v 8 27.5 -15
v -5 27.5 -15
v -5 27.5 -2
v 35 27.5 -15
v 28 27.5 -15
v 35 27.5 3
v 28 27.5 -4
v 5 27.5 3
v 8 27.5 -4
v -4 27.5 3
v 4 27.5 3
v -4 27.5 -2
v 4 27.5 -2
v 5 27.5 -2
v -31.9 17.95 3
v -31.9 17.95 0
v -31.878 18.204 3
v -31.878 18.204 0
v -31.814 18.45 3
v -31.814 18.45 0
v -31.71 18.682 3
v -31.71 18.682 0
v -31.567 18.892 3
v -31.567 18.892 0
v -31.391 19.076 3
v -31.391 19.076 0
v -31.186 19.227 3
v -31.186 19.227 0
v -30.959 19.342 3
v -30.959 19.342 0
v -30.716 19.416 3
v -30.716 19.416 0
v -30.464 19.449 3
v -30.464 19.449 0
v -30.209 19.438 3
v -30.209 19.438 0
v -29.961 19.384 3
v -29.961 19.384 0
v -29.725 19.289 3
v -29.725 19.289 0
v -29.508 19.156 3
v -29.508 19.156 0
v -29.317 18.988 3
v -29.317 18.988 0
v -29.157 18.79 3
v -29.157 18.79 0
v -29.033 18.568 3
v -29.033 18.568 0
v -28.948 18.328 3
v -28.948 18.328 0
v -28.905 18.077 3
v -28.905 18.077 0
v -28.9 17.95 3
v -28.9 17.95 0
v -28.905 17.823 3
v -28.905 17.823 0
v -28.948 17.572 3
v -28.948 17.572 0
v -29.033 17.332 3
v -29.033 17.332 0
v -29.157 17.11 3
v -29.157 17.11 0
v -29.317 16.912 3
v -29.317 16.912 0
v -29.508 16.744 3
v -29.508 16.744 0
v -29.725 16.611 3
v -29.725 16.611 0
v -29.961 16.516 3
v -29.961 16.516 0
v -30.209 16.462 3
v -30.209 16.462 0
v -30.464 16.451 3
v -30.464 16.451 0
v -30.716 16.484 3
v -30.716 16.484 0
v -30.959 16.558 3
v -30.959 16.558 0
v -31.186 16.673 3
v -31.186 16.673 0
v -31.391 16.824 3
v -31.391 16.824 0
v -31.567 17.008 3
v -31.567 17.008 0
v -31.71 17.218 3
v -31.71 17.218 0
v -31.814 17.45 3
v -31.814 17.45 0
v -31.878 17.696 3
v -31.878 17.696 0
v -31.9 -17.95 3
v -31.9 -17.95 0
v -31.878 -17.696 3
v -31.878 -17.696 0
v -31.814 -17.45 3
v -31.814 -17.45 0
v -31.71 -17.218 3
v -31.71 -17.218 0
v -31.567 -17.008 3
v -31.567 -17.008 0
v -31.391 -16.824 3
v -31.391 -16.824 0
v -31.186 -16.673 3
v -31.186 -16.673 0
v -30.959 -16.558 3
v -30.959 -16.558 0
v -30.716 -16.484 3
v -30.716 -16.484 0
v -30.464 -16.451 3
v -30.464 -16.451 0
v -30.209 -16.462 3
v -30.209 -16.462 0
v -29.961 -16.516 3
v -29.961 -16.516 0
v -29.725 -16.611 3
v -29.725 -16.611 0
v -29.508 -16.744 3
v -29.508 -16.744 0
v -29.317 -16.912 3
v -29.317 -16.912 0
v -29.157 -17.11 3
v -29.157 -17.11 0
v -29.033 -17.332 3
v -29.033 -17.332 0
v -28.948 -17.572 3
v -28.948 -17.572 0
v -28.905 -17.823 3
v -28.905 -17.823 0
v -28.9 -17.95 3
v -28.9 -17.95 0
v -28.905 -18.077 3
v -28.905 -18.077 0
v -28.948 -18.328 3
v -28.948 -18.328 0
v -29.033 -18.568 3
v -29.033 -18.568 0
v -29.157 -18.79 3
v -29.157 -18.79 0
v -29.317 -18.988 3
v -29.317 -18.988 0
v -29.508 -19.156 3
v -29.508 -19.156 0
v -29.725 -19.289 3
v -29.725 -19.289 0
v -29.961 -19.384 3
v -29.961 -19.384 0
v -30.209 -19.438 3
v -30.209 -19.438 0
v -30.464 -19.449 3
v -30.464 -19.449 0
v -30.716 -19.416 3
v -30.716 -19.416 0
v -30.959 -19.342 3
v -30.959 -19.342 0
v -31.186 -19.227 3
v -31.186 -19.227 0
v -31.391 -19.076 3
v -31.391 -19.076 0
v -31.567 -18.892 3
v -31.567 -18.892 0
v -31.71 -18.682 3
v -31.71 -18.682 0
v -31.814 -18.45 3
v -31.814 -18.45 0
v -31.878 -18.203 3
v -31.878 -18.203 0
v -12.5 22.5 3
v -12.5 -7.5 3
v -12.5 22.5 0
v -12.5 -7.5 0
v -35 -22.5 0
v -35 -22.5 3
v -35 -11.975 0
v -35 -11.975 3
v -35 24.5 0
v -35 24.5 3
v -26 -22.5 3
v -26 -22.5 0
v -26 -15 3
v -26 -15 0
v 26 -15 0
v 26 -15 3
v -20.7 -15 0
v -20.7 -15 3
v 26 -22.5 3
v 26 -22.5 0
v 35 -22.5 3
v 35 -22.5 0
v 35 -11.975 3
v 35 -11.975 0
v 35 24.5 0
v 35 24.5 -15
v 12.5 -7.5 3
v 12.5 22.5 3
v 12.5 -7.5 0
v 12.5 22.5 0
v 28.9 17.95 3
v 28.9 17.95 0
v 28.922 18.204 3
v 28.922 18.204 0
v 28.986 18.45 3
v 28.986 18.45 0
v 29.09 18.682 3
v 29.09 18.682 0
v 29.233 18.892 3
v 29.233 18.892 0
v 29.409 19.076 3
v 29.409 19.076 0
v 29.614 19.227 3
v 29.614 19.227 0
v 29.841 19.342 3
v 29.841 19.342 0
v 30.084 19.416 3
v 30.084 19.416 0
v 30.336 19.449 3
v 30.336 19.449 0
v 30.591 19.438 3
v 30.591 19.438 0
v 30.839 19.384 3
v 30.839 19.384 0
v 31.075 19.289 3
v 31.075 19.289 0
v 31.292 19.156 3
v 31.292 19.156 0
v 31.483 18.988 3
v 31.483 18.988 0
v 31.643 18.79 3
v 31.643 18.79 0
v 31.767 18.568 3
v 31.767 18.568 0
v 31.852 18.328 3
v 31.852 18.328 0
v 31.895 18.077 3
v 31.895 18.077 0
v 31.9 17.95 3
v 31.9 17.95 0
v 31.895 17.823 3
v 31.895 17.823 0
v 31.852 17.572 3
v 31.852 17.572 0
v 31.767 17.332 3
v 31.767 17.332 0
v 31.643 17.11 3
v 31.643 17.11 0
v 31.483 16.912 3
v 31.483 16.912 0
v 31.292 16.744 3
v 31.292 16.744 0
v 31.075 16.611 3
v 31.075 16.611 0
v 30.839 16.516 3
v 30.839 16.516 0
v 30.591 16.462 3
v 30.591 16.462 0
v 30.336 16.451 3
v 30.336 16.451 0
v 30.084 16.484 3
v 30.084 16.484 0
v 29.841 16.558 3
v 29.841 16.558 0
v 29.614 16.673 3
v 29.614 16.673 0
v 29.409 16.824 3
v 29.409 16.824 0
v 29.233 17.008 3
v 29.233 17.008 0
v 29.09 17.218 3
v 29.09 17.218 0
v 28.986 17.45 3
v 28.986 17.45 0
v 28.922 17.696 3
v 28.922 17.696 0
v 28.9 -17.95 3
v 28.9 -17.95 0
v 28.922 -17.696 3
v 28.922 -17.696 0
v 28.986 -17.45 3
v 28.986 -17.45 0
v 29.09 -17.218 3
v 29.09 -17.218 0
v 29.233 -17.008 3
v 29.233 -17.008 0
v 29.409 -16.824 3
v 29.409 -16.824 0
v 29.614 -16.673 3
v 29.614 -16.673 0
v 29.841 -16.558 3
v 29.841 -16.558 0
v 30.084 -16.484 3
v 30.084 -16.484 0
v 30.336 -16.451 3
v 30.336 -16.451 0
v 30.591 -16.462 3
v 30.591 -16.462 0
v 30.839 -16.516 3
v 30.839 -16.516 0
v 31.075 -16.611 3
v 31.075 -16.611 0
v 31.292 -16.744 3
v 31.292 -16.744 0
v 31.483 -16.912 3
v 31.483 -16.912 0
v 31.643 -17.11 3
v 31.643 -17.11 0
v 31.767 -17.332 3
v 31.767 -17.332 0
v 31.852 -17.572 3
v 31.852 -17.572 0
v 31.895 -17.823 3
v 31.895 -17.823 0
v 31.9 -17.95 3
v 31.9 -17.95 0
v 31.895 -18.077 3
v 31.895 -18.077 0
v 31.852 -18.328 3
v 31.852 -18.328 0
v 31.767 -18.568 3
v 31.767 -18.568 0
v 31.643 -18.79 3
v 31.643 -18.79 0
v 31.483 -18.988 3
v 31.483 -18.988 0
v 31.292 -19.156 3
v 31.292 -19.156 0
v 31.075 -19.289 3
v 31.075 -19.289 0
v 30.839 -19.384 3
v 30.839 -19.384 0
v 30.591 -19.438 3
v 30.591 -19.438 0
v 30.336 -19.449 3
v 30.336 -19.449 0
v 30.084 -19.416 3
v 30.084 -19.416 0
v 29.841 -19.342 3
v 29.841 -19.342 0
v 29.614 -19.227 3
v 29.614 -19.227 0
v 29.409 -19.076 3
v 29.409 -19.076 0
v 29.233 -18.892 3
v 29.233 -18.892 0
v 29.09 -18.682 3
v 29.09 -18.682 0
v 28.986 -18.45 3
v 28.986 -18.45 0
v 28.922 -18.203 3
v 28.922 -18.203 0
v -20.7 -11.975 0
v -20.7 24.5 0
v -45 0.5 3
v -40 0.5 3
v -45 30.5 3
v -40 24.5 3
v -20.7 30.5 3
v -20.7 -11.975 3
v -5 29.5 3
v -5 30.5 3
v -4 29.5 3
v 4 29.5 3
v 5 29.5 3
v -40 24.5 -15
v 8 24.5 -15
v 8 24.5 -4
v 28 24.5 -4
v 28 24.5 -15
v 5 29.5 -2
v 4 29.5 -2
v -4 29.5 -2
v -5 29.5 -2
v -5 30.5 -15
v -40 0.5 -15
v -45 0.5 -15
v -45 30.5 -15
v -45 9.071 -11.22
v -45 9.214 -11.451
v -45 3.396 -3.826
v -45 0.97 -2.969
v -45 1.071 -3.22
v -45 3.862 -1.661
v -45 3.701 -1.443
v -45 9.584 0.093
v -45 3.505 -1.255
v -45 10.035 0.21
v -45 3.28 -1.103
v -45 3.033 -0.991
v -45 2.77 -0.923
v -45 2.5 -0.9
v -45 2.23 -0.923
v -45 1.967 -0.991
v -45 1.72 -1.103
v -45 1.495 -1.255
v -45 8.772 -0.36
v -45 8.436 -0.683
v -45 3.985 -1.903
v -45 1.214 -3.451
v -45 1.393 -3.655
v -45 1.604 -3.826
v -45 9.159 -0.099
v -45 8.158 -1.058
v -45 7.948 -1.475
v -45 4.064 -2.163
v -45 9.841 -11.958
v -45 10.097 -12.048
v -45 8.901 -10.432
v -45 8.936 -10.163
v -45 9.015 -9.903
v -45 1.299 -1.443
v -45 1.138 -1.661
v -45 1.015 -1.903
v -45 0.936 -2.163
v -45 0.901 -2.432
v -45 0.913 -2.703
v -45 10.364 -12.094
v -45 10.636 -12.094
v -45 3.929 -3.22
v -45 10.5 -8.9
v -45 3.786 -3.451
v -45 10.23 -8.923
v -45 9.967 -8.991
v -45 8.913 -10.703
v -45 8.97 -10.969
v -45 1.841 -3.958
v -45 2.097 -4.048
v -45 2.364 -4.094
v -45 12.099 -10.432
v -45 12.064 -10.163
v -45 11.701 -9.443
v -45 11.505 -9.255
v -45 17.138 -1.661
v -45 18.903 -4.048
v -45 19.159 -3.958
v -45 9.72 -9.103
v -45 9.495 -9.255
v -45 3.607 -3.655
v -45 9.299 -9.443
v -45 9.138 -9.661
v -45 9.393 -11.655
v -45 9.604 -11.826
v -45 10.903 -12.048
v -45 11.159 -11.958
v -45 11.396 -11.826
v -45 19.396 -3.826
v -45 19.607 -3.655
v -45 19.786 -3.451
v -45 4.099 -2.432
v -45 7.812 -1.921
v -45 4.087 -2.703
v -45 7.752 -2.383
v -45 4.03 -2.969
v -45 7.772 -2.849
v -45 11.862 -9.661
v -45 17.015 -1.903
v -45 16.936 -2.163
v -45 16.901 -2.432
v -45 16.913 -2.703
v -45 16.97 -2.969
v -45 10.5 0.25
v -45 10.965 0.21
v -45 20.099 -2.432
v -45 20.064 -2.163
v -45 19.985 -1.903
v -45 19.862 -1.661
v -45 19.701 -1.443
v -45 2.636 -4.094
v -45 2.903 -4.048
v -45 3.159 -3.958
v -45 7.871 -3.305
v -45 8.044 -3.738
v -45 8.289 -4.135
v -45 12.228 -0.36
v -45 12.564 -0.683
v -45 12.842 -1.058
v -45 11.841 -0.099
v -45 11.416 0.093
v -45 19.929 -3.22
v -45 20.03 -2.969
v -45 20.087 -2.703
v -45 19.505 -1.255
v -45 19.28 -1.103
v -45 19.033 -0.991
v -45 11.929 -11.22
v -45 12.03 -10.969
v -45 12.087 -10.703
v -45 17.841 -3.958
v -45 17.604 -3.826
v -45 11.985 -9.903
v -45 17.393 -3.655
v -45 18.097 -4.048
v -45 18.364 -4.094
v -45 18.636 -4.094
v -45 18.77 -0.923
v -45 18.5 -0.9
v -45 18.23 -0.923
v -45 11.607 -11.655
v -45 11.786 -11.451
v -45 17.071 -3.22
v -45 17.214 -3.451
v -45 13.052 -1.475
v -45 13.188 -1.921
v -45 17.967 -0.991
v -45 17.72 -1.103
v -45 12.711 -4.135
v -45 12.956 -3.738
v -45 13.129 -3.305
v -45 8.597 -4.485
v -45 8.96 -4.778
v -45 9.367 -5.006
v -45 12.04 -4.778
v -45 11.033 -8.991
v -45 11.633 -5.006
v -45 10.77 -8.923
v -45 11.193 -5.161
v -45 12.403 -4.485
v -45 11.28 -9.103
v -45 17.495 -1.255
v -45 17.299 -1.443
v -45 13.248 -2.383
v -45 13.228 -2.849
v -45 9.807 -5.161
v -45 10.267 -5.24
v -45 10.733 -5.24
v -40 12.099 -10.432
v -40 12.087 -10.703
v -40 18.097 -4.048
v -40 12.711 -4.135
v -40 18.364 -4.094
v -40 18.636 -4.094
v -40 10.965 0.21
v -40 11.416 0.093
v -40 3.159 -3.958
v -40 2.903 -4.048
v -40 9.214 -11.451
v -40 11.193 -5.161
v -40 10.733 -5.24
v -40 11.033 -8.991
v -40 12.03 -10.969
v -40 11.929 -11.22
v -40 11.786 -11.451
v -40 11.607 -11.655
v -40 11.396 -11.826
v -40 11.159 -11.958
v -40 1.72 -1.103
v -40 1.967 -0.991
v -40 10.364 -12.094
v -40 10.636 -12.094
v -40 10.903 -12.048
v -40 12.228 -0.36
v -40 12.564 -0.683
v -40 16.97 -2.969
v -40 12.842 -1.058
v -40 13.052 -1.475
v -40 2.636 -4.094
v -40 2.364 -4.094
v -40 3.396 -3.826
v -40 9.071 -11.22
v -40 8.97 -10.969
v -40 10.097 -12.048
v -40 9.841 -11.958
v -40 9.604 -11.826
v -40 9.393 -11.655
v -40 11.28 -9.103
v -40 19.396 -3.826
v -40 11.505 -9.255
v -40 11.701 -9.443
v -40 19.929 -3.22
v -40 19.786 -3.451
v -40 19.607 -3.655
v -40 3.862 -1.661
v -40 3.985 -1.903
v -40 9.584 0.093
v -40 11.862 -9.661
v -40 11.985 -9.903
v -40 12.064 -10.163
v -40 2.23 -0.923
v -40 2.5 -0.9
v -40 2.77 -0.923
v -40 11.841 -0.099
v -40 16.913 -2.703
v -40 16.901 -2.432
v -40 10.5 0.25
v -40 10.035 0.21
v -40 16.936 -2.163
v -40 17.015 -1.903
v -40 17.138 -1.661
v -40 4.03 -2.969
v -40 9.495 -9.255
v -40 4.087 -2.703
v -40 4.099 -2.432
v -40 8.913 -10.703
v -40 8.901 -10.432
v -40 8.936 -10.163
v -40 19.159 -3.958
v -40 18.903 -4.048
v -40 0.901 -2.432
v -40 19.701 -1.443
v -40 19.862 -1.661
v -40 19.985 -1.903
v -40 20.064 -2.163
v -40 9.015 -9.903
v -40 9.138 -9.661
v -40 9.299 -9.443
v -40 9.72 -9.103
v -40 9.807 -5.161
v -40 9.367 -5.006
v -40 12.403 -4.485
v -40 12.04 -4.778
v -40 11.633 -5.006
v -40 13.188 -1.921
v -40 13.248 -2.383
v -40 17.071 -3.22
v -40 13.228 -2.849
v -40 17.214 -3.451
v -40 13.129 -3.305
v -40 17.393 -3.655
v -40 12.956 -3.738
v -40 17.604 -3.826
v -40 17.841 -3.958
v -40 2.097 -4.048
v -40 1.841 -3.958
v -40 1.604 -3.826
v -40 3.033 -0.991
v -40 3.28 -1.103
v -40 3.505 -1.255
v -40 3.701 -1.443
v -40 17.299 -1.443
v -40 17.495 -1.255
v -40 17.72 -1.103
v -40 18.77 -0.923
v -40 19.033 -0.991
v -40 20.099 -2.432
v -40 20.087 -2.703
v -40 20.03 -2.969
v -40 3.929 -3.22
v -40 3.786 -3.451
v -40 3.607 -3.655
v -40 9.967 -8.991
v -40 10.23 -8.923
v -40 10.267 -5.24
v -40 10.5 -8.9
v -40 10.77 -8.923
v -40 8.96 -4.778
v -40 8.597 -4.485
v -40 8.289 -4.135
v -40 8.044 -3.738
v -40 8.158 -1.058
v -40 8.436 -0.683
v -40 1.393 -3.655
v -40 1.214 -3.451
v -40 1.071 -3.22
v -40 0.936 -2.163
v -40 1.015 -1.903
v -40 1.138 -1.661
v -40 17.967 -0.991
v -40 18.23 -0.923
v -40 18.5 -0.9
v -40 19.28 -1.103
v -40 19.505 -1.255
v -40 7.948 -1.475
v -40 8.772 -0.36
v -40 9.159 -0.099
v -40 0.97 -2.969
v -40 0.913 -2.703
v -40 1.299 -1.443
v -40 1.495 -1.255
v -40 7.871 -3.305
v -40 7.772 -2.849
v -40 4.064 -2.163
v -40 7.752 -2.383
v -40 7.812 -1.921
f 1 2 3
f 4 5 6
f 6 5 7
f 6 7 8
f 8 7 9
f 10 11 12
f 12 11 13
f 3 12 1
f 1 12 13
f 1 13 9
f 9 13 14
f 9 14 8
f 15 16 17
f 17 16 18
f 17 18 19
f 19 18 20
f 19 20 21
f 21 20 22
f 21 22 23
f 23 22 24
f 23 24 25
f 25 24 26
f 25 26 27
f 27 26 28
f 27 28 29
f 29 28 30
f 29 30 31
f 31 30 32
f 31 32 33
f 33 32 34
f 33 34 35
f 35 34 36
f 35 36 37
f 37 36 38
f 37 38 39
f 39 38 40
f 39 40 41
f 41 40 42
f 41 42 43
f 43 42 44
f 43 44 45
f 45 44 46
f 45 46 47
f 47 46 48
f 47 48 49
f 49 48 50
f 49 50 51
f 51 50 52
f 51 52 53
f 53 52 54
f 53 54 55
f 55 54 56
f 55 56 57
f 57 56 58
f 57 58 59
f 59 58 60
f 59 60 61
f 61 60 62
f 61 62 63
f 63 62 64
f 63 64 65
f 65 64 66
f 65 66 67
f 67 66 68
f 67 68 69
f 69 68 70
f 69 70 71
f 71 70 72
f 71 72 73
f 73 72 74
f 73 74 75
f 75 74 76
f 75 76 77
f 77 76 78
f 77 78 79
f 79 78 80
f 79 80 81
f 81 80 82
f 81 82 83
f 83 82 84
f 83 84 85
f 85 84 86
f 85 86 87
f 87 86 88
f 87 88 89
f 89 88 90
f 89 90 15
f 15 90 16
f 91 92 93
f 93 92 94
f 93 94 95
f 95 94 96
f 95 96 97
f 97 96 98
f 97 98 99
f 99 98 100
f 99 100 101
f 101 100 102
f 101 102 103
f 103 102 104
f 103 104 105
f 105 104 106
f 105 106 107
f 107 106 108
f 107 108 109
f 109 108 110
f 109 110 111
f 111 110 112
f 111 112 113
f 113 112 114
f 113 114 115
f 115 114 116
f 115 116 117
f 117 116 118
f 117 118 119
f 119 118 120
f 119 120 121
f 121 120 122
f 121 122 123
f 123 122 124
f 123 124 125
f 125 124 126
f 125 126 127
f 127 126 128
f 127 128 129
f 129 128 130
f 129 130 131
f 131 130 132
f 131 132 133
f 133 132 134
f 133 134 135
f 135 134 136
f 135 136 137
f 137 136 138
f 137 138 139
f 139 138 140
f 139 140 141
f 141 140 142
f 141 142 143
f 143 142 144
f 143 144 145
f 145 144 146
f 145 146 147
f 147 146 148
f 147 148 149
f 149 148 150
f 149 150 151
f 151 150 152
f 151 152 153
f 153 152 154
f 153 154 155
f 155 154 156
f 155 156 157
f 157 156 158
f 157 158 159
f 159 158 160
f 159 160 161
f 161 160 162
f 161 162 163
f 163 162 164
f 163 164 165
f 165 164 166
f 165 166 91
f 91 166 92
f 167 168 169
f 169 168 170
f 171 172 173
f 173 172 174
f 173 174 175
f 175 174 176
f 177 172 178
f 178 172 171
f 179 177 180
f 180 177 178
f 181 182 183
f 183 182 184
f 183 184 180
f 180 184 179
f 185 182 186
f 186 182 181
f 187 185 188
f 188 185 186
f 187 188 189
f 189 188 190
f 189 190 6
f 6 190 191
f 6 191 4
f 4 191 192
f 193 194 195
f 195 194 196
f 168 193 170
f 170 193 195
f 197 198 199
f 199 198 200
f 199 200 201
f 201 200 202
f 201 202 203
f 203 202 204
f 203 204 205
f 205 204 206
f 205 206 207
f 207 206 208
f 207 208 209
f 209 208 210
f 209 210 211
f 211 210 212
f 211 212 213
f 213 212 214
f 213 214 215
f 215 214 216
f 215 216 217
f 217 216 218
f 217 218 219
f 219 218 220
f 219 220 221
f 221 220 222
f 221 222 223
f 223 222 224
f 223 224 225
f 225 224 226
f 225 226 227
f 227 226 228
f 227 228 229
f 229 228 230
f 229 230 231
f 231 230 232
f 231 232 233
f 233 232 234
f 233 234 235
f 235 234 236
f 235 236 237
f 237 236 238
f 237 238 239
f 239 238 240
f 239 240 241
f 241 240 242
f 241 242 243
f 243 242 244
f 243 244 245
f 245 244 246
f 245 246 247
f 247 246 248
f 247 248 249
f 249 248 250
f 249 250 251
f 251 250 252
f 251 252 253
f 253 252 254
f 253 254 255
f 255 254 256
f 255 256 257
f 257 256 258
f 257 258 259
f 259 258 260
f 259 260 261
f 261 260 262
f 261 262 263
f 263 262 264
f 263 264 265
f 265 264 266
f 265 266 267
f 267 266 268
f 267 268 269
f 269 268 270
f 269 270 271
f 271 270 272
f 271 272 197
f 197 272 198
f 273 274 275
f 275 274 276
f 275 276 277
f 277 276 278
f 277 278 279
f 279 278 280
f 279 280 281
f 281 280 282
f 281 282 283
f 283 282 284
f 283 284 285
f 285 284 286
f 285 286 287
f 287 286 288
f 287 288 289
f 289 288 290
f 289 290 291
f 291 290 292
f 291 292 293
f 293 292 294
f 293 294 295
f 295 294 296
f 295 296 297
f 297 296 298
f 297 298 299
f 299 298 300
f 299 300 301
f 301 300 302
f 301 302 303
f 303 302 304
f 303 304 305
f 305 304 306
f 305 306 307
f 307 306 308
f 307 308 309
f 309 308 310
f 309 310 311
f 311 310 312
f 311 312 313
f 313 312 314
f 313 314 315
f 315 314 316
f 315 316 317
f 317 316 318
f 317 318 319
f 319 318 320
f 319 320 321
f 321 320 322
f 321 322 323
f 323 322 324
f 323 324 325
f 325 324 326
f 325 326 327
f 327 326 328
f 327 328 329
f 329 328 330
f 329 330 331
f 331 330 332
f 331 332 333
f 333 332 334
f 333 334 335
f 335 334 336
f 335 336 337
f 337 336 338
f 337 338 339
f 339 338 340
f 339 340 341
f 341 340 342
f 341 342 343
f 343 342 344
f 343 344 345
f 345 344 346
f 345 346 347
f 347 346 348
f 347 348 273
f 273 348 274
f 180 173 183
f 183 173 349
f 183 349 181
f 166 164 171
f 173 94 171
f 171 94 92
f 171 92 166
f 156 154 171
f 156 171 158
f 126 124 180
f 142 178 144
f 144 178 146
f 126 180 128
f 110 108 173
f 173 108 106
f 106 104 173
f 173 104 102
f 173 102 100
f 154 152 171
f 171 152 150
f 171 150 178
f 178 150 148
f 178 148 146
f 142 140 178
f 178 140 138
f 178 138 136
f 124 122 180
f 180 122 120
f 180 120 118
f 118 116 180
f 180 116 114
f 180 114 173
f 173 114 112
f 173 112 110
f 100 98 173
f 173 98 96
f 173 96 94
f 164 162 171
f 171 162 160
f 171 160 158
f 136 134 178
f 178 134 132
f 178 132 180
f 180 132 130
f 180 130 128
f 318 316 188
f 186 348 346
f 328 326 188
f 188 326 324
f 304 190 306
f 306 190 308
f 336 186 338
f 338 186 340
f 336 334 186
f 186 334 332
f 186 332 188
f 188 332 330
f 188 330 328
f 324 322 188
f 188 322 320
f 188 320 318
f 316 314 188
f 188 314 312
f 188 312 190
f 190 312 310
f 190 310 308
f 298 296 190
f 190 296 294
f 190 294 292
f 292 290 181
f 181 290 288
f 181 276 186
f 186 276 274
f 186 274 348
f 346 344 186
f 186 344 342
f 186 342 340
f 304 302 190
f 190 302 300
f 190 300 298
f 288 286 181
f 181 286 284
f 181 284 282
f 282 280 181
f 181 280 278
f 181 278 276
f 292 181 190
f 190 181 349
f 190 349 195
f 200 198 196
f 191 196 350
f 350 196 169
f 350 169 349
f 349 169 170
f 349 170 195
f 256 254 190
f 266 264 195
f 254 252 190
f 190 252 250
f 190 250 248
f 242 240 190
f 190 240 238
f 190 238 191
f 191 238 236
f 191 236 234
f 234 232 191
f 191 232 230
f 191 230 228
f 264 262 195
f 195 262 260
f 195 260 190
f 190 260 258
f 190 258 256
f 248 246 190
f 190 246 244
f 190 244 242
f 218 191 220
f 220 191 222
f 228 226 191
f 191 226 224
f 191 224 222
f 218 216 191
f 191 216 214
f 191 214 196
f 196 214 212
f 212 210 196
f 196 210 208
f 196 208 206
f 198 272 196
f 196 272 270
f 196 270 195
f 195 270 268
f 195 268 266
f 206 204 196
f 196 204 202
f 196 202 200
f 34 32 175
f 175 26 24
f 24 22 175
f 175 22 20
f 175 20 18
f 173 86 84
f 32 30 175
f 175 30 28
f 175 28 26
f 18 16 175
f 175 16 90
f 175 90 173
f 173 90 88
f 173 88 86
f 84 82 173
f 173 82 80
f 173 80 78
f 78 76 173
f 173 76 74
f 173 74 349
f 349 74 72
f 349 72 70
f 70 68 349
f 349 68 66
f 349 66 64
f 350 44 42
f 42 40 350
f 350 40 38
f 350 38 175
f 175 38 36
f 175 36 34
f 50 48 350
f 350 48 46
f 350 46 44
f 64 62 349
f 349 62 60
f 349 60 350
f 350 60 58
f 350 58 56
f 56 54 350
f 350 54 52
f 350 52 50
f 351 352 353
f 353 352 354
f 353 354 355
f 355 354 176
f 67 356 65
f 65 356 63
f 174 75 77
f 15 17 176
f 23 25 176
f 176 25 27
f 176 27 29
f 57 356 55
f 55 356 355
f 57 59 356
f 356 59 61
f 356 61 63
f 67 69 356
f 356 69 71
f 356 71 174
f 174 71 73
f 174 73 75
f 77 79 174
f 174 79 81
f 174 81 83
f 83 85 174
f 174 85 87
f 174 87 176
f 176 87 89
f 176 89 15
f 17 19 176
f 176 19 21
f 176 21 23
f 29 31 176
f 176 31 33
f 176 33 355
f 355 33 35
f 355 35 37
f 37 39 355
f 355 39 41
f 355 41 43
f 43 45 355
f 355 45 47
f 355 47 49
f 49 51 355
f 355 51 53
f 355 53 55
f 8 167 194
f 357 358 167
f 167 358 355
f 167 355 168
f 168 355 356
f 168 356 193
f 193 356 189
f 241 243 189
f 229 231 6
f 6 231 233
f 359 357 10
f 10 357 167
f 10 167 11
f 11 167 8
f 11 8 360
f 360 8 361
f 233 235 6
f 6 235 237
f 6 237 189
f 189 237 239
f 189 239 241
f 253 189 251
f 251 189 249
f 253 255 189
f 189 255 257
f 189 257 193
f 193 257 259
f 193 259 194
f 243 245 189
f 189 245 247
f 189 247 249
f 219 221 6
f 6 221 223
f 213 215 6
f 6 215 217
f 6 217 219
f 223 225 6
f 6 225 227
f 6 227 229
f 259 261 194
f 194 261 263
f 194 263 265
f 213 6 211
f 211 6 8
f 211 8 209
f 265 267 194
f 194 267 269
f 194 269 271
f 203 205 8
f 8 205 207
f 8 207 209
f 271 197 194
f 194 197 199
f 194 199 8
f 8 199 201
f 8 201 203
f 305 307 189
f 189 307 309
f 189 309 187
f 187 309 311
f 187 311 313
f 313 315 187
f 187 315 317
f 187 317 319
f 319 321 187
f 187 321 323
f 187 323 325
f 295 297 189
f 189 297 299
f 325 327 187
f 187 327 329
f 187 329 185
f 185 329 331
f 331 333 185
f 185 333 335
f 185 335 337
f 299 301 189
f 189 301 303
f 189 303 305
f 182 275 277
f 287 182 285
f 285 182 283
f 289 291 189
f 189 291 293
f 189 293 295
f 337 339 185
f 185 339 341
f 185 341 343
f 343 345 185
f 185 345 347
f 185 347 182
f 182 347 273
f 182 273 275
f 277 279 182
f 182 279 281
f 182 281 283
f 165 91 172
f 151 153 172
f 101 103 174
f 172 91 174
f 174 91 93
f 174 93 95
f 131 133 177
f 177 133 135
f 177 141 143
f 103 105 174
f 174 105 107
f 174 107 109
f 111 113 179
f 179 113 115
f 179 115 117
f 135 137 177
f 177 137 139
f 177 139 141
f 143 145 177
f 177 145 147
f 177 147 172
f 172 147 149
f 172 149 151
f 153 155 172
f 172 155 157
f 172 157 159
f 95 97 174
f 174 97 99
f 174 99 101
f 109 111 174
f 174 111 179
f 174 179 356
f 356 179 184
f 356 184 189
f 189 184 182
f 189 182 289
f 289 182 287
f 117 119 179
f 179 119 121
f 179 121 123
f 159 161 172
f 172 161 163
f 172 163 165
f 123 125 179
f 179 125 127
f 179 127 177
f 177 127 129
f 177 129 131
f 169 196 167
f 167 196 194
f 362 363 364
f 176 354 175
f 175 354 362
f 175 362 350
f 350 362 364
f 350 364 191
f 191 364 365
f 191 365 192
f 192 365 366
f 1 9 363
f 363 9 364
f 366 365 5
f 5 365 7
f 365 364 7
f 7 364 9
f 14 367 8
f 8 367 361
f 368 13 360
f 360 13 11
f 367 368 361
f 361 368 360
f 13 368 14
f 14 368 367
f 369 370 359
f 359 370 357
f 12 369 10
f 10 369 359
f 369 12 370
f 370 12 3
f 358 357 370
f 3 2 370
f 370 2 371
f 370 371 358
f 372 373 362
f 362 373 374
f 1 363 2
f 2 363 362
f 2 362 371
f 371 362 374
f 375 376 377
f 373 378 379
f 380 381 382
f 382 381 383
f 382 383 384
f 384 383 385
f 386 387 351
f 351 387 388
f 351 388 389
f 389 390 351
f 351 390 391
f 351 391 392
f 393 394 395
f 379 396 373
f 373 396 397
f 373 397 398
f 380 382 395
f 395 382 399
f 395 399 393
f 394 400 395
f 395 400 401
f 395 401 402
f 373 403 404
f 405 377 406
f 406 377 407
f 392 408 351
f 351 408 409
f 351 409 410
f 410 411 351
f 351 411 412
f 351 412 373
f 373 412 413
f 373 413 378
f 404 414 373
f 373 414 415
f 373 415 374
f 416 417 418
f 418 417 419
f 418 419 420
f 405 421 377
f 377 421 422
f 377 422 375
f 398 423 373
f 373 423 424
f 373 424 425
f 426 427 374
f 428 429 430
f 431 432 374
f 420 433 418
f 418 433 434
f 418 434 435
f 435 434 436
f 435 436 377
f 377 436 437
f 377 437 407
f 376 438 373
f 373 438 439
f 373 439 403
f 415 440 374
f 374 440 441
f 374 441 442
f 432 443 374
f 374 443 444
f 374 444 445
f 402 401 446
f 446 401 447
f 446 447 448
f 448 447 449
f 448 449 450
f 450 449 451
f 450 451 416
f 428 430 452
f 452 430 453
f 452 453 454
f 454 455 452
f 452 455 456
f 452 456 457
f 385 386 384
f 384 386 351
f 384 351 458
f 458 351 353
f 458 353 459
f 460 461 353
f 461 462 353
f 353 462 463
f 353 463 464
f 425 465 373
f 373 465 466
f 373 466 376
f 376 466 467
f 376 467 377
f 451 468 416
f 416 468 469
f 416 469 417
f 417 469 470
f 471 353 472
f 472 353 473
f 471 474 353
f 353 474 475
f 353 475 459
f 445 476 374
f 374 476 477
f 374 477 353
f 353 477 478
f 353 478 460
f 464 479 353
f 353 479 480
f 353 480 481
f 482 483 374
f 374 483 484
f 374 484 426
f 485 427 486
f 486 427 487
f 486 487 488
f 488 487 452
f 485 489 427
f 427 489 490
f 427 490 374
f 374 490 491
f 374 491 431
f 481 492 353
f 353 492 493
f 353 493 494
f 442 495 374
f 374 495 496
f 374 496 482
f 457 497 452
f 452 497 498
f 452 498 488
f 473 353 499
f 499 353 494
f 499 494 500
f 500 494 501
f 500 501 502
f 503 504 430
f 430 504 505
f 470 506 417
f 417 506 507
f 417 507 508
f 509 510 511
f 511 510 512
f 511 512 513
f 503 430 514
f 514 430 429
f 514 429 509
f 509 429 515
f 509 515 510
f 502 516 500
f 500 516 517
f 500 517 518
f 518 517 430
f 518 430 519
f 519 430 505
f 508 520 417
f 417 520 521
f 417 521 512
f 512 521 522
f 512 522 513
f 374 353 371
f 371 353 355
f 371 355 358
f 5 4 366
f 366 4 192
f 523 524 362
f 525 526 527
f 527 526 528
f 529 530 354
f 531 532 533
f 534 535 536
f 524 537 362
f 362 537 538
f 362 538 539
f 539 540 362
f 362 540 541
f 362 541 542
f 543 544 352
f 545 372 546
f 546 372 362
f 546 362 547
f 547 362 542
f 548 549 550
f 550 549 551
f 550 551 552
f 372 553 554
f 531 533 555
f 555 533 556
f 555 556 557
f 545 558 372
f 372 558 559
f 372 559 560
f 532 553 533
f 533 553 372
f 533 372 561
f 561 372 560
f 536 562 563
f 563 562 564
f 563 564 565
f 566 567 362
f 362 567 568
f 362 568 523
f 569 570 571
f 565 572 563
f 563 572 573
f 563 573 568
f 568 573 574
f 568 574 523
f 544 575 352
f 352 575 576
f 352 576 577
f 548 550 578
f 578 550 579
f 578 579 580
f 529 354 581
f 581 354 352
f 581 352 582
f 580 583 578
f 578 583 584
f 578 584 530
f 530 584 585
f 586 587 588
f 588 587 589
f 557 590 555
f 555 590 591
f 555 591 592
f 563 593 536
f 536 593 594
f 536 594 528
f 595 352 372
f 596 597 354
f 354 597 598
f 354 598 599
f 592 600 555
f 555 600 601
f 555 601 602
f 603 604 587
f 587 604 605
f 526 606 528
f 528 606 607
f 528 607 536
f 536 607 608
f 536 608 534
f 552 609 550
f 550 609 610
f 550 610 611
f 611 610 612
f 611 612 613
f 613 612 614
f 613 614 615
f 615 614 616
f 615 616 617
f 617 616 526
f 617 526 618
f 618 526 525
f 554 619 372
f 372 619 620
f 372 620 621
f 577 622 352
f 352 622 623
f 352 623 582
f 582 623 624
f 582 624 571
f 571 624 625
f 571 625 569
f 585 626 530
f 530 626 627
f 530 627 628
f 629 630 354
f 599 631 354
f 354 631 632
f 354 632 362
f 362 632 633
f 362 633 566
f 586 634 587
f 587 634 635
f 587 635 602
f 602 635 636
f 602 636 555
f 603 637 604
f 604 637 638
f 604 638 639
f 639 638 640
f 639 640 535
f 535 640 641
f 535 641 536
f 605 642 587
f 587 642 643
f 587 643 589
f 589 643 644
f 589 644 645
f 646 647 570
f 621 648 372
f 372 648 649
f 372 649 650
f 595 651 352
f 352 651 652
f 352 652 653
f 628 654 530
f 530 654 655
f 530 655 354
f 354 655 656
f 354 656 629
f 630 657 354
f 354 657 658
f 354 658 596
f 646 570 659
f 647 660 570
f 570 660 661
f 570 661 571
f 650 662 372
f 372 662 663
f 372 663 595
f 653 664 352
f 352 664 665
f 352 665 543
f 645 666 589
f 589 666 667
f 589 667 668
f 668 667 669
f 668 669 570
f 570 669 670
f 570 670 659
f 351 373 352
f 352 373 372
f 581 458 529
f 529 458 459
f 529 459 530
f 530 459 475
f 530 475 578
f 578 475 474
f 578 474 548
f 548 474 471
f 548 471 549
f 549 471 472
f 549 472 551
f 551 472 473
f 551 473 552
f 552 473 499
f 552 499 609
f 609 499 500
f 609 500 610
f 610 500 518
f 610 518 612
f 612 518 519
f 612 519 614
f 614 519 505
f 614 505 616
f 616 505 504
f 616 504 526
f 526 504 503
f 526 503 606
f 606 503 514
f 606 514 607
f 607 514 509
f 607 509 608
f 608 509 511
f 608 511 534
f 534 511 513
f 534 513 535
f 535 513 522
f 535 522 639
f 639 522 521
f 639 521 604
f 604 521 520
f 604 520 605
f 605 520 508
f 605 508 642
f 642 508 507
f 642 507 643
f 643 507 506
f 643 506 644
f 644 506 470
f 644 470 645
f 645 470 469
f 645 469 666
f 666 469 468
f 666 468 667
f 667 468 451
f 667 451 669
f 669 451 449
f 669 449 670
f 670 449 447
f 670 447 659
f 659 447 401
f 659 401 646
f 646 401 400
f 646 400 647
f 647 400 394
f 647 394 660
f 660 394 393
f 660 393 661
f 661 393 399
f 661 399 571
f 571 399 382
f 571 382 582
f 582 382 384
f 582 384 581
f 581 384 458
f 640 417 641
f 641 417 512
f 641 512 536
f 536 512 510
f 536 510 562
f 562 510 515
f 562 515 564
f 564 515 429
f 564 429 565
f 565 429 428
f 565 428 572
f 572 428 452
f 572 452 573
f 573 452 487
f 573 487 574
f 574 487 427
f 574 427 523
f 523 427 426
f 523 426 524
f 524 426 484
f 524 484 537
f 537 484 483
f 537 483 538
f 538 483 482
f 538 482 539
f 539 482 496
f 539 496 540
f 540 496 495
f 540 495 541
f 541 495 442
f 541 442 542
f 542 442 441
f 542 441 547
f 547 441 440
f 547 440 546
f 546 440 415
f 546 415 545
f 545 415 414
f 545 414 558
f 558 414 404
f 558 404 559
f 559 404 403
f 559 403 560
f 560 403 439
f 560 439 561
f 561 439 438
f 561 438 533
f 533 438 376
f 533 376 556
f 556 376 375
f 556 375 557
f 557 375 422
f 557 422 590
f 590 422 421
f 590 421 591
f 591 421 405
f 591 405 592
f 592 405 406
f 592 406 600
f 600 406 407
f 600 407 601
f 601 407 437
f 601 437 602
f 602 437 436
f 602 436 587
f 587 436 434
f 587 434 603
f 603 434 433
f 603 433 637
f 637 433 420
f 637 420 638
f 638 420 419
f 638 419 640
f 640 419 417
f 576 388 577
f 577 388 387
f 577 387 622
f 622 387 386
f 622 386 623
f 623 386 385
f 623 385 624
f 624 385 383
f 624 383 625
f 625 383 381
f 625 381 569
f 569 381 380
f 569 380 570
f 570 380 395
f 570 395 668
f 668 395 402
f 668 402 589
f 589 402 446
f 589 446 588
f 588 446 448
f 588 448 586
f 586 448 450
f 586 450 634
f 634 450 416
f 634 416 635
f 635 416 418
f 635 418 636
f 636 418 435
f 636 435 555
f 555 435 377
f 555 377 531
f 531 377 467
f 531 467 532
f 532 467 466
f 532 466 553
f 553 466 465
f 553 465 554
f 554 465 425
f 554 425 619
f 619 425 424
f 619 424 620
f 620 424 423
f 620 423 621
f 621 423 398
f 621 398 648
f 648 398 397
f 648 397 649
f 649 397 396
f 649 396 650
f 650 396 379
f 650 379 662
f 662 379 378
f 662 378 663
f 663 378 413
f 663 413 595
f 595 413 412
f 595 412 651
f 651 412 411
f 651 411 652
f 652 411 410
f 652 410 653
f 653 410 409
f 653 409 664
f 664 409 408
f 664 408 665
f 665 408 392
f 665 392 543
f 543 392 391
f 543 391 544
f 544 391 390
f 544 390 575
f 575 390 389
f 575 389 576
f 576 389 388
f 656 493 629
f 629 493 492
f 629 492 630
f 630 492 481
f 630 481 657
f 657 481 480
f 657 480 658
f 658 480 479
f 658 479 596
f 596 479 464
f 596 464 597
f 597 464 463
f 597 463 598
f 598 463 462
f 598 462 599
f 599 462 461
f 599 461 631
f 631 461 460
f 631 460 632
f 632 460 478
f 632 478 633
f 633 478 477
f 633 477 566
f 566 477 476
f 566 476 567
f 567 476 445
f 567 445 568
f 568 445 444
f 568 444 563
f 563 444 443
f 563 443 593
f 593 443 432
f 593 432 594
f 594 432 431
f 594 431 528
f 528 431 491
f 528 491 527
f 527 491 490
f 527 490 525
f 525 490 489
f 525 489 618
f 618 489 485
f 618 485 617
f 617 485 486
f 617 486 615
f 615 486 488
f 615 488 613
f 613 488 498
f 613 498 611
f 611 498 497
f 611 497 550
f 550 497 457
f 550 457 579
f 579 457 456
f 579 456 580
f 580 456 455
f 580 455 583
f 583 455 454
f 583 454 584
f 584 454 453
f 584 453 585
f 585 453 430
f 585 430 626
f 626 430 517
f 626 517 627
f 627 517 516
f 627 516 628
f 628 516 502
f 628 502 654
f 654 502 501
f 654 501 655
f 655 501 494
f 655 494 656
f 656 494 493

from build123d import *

# Parameters (mm, degrees)
SKETCH_1_R          = 1.5
EXTRUDE_1_DEPTH     = 3
SKETCH_2_W          = 70
SKETCH_2_H          = 22
EXTRUDE_2_DEPTH     = 3
SKETCH_3_W          = 20
SKETCH_3_H          = 21.549001307
CUT_EXTRUDE_1_DEPTH = 3
SKETCH_4_W          = 1
SKETCH_4_H          = 2
EXTRUDE_3_DEPTH     = 5
SKETCH_5_W          = 40
SKETCH_5_H          = 25
EXTRUDE_4_DEPTH     = 3
SKETCH_6_W          = 79.808748454
SKETCH_6_H          = 4
CUT_EXTRUDE_2_DEPTH = 5
SKETCH_7_W          = 5
SKETCH_7_H          = 25
EXTRUDE_5_DEPTH     = 30
SKETCH_8_R          = 2.75
SKETCH_8_R_2        = 1.6
CUT_EXTRUDE_3_DEPTH = 5
SKETCH_9_W          = 5
SKETCH_9_H          = 25
EXTRUDE_6_DEPTH     = 3
SKETCH_10_W         = 7
SKETCH_10_H         = 39.176748617
CUT_EXTRUDE_4_DEPTH = 53.490475326


with BuildPart() as part:
    # 草图1 → 凸台-拉伸1 (new body)
    # profile 1 of 2: a face of its own
    with BuildSketch(Plane.XY):
        Polygon((26, -22.5), (35, -22.5), (35, 22.5), (12.5, 22.5), (12.5, -7.5), (-12.5, -7.5), (-12.5, 22.5), (-35, 22.5), (-35, -22.5), (-26, -22.5), (-26, -15), (26, -15), align=None)
        with Locations((-30.4, -17.95)):
            Circle(SKETCH_1_R, mode=Mode.SUBTRACT)
        with Locations((30.4, -17.95)):
            Circle(SKETCH_1_R, mode=Mode.SUBTRACT)
        with Locations((-30.4, 17.95)):
            Circle(SKETCH_1_R, mode=Mode.SUBTRACT)
        with Locations((30.4, 17.95)):
            Circle(SKETCH_1_R, mode=Mode.SUBTRACT)
    # profile 2 of 2: a face of its own
    with BuildSketch(Plane.XY):
        Polygon((12.5, 22.5), (35, 22.5), (35, 24.5), (-35, 24.5), (-35, 22.5), (-12.5, 22.5), align=None)
    extrude(amount=EXTRUDE_1_DEPTH)

    # 草图2 → 凸台-拉伸2 (add)
    with BuildSketch(Plane(origin=(0, 24.5, 0), x_dir=(1, 0, 0), z_dir=(0, 1, 0))):
        with Locations((0, 8)):
            Rectangle(SKETCH_2_W, SKETCH_2_H)
    extrude(amount=EXTRUDE_2_DEPTH)

    # 草图3 → 切除-拉伸1 (cut)
    with BuildSketch(Plane(origin=(0, 27.5, 0), x_dir=(1, 0, 0), z_dir=(0, 1, 0))):
        with Locations((18, 14.774500654)):
            Rectangle(SKETCH_3_W, SKETCH_3_H)
    extrude(amount=-CUT_EXTRUDE_1_DEPTH, mode=Mode.SUBTRACT)

    # 草图4 → 凸台-拉伸3 (add)
    with BuildSketch(Plane.XY.offset(3)):
        with Locations((4.5, 28.5)):
            Rectangle(SKETCH_4_W, SKETCH_4_H)
        with Locations((-4.5, 28.5)):
            Rectangle(SKETCH_4_W, SKETCH_4_H)
    extrude(amount=-EXTRUDE_3_DEPTH)

    # 草图5 → 凸台-拉伸4 (add)
    with BuildSketch(Plane(origin=(0, 27.5, 0), x_dir=(1, 0, 0), z_dir=(0, 1, 0))):
        with Locations((-25, 2.5)):
            Rectangle(SKETCH_5_W, SKETCH_5_H)
    extrude(amount=EXTRUDE_4_DEPTH)

    # 草图6 → 切除-拉伸2 (cut)
    with BuildSketch(Plane(origin=(0, 27.5, 0), x_dir=(1, 0, 0), z_dir=(0, 1, 0))):
        with Locations((4.904374227, 17)):
            Rectangle(SKETCH_6_W, SKETCH_6_H)
    extrude(amount=-CUT_EXTRUDE_2_DEPTH, mode=Mode.SUBTRACT)

    # 草图7 → 凸台-拉伸5 (add)
    with BuildSketch(Plane(origin=(0, 30.5, 0), x_dir=(1, 0, 0), z_dir=(0, 1, 0))):
        with Locations((-42.5, 2.5)):
            Rectangle(SKETCH_7_W, SKETCH_7_H)
    extrude(amount=-EXTRUDE_5_DEPTH)

    # 草图8 → 切除-拉伸3 (cut)
    with BuildSketch(Plane.ZY.offset(45)):
        with Locations((-2.5, 10.5)):
            Circle(SKETCH_8_R)
        with Locations((-2.5, 18.5)):
            Circle(SKETCH_8_R_2)
        with Locations((5.5, 10.5)):
            Circle(SKETCH_8_R_2)
        with Locations((-2.5, 2.5)):
            Circle(SKETCH_8_R_2)
        with Locations((-10.5, 10.5)):
            Circle(SKETCH_8_R_2)
    extrude(amount=-CUT_EXTRUDE_3_DEPTH, mode=Mode.SUBTRACT)

    # 草图9 → 凸台-拉伸6 (add)
    with BuildSketch(Plane.XZ.offset(-27.5)):
        with Locations((-37.5, -2.5)):
            Rectangle(SKETCH_9_W, SKETCH_9_H)
    extrude(amount=EXTRUDE_6_DEPTH)

    # 草图10 → 切除-拉伸4 (cut, through all)
    with BuildSketch(Plane(origin=(-5, 0, 0), x_dir=(0, 0, -1), z_dir=(1, 0, 0))):
        with Locations((-6.5, 10.911625692)):
            Rectangle(SKETCH_10_W, SKETCH_10_H)
    extrude(amount=-CUT_EXTRUDE_4_DEPTH, mode=Mode.SUBTRACT)


solid = part.part
